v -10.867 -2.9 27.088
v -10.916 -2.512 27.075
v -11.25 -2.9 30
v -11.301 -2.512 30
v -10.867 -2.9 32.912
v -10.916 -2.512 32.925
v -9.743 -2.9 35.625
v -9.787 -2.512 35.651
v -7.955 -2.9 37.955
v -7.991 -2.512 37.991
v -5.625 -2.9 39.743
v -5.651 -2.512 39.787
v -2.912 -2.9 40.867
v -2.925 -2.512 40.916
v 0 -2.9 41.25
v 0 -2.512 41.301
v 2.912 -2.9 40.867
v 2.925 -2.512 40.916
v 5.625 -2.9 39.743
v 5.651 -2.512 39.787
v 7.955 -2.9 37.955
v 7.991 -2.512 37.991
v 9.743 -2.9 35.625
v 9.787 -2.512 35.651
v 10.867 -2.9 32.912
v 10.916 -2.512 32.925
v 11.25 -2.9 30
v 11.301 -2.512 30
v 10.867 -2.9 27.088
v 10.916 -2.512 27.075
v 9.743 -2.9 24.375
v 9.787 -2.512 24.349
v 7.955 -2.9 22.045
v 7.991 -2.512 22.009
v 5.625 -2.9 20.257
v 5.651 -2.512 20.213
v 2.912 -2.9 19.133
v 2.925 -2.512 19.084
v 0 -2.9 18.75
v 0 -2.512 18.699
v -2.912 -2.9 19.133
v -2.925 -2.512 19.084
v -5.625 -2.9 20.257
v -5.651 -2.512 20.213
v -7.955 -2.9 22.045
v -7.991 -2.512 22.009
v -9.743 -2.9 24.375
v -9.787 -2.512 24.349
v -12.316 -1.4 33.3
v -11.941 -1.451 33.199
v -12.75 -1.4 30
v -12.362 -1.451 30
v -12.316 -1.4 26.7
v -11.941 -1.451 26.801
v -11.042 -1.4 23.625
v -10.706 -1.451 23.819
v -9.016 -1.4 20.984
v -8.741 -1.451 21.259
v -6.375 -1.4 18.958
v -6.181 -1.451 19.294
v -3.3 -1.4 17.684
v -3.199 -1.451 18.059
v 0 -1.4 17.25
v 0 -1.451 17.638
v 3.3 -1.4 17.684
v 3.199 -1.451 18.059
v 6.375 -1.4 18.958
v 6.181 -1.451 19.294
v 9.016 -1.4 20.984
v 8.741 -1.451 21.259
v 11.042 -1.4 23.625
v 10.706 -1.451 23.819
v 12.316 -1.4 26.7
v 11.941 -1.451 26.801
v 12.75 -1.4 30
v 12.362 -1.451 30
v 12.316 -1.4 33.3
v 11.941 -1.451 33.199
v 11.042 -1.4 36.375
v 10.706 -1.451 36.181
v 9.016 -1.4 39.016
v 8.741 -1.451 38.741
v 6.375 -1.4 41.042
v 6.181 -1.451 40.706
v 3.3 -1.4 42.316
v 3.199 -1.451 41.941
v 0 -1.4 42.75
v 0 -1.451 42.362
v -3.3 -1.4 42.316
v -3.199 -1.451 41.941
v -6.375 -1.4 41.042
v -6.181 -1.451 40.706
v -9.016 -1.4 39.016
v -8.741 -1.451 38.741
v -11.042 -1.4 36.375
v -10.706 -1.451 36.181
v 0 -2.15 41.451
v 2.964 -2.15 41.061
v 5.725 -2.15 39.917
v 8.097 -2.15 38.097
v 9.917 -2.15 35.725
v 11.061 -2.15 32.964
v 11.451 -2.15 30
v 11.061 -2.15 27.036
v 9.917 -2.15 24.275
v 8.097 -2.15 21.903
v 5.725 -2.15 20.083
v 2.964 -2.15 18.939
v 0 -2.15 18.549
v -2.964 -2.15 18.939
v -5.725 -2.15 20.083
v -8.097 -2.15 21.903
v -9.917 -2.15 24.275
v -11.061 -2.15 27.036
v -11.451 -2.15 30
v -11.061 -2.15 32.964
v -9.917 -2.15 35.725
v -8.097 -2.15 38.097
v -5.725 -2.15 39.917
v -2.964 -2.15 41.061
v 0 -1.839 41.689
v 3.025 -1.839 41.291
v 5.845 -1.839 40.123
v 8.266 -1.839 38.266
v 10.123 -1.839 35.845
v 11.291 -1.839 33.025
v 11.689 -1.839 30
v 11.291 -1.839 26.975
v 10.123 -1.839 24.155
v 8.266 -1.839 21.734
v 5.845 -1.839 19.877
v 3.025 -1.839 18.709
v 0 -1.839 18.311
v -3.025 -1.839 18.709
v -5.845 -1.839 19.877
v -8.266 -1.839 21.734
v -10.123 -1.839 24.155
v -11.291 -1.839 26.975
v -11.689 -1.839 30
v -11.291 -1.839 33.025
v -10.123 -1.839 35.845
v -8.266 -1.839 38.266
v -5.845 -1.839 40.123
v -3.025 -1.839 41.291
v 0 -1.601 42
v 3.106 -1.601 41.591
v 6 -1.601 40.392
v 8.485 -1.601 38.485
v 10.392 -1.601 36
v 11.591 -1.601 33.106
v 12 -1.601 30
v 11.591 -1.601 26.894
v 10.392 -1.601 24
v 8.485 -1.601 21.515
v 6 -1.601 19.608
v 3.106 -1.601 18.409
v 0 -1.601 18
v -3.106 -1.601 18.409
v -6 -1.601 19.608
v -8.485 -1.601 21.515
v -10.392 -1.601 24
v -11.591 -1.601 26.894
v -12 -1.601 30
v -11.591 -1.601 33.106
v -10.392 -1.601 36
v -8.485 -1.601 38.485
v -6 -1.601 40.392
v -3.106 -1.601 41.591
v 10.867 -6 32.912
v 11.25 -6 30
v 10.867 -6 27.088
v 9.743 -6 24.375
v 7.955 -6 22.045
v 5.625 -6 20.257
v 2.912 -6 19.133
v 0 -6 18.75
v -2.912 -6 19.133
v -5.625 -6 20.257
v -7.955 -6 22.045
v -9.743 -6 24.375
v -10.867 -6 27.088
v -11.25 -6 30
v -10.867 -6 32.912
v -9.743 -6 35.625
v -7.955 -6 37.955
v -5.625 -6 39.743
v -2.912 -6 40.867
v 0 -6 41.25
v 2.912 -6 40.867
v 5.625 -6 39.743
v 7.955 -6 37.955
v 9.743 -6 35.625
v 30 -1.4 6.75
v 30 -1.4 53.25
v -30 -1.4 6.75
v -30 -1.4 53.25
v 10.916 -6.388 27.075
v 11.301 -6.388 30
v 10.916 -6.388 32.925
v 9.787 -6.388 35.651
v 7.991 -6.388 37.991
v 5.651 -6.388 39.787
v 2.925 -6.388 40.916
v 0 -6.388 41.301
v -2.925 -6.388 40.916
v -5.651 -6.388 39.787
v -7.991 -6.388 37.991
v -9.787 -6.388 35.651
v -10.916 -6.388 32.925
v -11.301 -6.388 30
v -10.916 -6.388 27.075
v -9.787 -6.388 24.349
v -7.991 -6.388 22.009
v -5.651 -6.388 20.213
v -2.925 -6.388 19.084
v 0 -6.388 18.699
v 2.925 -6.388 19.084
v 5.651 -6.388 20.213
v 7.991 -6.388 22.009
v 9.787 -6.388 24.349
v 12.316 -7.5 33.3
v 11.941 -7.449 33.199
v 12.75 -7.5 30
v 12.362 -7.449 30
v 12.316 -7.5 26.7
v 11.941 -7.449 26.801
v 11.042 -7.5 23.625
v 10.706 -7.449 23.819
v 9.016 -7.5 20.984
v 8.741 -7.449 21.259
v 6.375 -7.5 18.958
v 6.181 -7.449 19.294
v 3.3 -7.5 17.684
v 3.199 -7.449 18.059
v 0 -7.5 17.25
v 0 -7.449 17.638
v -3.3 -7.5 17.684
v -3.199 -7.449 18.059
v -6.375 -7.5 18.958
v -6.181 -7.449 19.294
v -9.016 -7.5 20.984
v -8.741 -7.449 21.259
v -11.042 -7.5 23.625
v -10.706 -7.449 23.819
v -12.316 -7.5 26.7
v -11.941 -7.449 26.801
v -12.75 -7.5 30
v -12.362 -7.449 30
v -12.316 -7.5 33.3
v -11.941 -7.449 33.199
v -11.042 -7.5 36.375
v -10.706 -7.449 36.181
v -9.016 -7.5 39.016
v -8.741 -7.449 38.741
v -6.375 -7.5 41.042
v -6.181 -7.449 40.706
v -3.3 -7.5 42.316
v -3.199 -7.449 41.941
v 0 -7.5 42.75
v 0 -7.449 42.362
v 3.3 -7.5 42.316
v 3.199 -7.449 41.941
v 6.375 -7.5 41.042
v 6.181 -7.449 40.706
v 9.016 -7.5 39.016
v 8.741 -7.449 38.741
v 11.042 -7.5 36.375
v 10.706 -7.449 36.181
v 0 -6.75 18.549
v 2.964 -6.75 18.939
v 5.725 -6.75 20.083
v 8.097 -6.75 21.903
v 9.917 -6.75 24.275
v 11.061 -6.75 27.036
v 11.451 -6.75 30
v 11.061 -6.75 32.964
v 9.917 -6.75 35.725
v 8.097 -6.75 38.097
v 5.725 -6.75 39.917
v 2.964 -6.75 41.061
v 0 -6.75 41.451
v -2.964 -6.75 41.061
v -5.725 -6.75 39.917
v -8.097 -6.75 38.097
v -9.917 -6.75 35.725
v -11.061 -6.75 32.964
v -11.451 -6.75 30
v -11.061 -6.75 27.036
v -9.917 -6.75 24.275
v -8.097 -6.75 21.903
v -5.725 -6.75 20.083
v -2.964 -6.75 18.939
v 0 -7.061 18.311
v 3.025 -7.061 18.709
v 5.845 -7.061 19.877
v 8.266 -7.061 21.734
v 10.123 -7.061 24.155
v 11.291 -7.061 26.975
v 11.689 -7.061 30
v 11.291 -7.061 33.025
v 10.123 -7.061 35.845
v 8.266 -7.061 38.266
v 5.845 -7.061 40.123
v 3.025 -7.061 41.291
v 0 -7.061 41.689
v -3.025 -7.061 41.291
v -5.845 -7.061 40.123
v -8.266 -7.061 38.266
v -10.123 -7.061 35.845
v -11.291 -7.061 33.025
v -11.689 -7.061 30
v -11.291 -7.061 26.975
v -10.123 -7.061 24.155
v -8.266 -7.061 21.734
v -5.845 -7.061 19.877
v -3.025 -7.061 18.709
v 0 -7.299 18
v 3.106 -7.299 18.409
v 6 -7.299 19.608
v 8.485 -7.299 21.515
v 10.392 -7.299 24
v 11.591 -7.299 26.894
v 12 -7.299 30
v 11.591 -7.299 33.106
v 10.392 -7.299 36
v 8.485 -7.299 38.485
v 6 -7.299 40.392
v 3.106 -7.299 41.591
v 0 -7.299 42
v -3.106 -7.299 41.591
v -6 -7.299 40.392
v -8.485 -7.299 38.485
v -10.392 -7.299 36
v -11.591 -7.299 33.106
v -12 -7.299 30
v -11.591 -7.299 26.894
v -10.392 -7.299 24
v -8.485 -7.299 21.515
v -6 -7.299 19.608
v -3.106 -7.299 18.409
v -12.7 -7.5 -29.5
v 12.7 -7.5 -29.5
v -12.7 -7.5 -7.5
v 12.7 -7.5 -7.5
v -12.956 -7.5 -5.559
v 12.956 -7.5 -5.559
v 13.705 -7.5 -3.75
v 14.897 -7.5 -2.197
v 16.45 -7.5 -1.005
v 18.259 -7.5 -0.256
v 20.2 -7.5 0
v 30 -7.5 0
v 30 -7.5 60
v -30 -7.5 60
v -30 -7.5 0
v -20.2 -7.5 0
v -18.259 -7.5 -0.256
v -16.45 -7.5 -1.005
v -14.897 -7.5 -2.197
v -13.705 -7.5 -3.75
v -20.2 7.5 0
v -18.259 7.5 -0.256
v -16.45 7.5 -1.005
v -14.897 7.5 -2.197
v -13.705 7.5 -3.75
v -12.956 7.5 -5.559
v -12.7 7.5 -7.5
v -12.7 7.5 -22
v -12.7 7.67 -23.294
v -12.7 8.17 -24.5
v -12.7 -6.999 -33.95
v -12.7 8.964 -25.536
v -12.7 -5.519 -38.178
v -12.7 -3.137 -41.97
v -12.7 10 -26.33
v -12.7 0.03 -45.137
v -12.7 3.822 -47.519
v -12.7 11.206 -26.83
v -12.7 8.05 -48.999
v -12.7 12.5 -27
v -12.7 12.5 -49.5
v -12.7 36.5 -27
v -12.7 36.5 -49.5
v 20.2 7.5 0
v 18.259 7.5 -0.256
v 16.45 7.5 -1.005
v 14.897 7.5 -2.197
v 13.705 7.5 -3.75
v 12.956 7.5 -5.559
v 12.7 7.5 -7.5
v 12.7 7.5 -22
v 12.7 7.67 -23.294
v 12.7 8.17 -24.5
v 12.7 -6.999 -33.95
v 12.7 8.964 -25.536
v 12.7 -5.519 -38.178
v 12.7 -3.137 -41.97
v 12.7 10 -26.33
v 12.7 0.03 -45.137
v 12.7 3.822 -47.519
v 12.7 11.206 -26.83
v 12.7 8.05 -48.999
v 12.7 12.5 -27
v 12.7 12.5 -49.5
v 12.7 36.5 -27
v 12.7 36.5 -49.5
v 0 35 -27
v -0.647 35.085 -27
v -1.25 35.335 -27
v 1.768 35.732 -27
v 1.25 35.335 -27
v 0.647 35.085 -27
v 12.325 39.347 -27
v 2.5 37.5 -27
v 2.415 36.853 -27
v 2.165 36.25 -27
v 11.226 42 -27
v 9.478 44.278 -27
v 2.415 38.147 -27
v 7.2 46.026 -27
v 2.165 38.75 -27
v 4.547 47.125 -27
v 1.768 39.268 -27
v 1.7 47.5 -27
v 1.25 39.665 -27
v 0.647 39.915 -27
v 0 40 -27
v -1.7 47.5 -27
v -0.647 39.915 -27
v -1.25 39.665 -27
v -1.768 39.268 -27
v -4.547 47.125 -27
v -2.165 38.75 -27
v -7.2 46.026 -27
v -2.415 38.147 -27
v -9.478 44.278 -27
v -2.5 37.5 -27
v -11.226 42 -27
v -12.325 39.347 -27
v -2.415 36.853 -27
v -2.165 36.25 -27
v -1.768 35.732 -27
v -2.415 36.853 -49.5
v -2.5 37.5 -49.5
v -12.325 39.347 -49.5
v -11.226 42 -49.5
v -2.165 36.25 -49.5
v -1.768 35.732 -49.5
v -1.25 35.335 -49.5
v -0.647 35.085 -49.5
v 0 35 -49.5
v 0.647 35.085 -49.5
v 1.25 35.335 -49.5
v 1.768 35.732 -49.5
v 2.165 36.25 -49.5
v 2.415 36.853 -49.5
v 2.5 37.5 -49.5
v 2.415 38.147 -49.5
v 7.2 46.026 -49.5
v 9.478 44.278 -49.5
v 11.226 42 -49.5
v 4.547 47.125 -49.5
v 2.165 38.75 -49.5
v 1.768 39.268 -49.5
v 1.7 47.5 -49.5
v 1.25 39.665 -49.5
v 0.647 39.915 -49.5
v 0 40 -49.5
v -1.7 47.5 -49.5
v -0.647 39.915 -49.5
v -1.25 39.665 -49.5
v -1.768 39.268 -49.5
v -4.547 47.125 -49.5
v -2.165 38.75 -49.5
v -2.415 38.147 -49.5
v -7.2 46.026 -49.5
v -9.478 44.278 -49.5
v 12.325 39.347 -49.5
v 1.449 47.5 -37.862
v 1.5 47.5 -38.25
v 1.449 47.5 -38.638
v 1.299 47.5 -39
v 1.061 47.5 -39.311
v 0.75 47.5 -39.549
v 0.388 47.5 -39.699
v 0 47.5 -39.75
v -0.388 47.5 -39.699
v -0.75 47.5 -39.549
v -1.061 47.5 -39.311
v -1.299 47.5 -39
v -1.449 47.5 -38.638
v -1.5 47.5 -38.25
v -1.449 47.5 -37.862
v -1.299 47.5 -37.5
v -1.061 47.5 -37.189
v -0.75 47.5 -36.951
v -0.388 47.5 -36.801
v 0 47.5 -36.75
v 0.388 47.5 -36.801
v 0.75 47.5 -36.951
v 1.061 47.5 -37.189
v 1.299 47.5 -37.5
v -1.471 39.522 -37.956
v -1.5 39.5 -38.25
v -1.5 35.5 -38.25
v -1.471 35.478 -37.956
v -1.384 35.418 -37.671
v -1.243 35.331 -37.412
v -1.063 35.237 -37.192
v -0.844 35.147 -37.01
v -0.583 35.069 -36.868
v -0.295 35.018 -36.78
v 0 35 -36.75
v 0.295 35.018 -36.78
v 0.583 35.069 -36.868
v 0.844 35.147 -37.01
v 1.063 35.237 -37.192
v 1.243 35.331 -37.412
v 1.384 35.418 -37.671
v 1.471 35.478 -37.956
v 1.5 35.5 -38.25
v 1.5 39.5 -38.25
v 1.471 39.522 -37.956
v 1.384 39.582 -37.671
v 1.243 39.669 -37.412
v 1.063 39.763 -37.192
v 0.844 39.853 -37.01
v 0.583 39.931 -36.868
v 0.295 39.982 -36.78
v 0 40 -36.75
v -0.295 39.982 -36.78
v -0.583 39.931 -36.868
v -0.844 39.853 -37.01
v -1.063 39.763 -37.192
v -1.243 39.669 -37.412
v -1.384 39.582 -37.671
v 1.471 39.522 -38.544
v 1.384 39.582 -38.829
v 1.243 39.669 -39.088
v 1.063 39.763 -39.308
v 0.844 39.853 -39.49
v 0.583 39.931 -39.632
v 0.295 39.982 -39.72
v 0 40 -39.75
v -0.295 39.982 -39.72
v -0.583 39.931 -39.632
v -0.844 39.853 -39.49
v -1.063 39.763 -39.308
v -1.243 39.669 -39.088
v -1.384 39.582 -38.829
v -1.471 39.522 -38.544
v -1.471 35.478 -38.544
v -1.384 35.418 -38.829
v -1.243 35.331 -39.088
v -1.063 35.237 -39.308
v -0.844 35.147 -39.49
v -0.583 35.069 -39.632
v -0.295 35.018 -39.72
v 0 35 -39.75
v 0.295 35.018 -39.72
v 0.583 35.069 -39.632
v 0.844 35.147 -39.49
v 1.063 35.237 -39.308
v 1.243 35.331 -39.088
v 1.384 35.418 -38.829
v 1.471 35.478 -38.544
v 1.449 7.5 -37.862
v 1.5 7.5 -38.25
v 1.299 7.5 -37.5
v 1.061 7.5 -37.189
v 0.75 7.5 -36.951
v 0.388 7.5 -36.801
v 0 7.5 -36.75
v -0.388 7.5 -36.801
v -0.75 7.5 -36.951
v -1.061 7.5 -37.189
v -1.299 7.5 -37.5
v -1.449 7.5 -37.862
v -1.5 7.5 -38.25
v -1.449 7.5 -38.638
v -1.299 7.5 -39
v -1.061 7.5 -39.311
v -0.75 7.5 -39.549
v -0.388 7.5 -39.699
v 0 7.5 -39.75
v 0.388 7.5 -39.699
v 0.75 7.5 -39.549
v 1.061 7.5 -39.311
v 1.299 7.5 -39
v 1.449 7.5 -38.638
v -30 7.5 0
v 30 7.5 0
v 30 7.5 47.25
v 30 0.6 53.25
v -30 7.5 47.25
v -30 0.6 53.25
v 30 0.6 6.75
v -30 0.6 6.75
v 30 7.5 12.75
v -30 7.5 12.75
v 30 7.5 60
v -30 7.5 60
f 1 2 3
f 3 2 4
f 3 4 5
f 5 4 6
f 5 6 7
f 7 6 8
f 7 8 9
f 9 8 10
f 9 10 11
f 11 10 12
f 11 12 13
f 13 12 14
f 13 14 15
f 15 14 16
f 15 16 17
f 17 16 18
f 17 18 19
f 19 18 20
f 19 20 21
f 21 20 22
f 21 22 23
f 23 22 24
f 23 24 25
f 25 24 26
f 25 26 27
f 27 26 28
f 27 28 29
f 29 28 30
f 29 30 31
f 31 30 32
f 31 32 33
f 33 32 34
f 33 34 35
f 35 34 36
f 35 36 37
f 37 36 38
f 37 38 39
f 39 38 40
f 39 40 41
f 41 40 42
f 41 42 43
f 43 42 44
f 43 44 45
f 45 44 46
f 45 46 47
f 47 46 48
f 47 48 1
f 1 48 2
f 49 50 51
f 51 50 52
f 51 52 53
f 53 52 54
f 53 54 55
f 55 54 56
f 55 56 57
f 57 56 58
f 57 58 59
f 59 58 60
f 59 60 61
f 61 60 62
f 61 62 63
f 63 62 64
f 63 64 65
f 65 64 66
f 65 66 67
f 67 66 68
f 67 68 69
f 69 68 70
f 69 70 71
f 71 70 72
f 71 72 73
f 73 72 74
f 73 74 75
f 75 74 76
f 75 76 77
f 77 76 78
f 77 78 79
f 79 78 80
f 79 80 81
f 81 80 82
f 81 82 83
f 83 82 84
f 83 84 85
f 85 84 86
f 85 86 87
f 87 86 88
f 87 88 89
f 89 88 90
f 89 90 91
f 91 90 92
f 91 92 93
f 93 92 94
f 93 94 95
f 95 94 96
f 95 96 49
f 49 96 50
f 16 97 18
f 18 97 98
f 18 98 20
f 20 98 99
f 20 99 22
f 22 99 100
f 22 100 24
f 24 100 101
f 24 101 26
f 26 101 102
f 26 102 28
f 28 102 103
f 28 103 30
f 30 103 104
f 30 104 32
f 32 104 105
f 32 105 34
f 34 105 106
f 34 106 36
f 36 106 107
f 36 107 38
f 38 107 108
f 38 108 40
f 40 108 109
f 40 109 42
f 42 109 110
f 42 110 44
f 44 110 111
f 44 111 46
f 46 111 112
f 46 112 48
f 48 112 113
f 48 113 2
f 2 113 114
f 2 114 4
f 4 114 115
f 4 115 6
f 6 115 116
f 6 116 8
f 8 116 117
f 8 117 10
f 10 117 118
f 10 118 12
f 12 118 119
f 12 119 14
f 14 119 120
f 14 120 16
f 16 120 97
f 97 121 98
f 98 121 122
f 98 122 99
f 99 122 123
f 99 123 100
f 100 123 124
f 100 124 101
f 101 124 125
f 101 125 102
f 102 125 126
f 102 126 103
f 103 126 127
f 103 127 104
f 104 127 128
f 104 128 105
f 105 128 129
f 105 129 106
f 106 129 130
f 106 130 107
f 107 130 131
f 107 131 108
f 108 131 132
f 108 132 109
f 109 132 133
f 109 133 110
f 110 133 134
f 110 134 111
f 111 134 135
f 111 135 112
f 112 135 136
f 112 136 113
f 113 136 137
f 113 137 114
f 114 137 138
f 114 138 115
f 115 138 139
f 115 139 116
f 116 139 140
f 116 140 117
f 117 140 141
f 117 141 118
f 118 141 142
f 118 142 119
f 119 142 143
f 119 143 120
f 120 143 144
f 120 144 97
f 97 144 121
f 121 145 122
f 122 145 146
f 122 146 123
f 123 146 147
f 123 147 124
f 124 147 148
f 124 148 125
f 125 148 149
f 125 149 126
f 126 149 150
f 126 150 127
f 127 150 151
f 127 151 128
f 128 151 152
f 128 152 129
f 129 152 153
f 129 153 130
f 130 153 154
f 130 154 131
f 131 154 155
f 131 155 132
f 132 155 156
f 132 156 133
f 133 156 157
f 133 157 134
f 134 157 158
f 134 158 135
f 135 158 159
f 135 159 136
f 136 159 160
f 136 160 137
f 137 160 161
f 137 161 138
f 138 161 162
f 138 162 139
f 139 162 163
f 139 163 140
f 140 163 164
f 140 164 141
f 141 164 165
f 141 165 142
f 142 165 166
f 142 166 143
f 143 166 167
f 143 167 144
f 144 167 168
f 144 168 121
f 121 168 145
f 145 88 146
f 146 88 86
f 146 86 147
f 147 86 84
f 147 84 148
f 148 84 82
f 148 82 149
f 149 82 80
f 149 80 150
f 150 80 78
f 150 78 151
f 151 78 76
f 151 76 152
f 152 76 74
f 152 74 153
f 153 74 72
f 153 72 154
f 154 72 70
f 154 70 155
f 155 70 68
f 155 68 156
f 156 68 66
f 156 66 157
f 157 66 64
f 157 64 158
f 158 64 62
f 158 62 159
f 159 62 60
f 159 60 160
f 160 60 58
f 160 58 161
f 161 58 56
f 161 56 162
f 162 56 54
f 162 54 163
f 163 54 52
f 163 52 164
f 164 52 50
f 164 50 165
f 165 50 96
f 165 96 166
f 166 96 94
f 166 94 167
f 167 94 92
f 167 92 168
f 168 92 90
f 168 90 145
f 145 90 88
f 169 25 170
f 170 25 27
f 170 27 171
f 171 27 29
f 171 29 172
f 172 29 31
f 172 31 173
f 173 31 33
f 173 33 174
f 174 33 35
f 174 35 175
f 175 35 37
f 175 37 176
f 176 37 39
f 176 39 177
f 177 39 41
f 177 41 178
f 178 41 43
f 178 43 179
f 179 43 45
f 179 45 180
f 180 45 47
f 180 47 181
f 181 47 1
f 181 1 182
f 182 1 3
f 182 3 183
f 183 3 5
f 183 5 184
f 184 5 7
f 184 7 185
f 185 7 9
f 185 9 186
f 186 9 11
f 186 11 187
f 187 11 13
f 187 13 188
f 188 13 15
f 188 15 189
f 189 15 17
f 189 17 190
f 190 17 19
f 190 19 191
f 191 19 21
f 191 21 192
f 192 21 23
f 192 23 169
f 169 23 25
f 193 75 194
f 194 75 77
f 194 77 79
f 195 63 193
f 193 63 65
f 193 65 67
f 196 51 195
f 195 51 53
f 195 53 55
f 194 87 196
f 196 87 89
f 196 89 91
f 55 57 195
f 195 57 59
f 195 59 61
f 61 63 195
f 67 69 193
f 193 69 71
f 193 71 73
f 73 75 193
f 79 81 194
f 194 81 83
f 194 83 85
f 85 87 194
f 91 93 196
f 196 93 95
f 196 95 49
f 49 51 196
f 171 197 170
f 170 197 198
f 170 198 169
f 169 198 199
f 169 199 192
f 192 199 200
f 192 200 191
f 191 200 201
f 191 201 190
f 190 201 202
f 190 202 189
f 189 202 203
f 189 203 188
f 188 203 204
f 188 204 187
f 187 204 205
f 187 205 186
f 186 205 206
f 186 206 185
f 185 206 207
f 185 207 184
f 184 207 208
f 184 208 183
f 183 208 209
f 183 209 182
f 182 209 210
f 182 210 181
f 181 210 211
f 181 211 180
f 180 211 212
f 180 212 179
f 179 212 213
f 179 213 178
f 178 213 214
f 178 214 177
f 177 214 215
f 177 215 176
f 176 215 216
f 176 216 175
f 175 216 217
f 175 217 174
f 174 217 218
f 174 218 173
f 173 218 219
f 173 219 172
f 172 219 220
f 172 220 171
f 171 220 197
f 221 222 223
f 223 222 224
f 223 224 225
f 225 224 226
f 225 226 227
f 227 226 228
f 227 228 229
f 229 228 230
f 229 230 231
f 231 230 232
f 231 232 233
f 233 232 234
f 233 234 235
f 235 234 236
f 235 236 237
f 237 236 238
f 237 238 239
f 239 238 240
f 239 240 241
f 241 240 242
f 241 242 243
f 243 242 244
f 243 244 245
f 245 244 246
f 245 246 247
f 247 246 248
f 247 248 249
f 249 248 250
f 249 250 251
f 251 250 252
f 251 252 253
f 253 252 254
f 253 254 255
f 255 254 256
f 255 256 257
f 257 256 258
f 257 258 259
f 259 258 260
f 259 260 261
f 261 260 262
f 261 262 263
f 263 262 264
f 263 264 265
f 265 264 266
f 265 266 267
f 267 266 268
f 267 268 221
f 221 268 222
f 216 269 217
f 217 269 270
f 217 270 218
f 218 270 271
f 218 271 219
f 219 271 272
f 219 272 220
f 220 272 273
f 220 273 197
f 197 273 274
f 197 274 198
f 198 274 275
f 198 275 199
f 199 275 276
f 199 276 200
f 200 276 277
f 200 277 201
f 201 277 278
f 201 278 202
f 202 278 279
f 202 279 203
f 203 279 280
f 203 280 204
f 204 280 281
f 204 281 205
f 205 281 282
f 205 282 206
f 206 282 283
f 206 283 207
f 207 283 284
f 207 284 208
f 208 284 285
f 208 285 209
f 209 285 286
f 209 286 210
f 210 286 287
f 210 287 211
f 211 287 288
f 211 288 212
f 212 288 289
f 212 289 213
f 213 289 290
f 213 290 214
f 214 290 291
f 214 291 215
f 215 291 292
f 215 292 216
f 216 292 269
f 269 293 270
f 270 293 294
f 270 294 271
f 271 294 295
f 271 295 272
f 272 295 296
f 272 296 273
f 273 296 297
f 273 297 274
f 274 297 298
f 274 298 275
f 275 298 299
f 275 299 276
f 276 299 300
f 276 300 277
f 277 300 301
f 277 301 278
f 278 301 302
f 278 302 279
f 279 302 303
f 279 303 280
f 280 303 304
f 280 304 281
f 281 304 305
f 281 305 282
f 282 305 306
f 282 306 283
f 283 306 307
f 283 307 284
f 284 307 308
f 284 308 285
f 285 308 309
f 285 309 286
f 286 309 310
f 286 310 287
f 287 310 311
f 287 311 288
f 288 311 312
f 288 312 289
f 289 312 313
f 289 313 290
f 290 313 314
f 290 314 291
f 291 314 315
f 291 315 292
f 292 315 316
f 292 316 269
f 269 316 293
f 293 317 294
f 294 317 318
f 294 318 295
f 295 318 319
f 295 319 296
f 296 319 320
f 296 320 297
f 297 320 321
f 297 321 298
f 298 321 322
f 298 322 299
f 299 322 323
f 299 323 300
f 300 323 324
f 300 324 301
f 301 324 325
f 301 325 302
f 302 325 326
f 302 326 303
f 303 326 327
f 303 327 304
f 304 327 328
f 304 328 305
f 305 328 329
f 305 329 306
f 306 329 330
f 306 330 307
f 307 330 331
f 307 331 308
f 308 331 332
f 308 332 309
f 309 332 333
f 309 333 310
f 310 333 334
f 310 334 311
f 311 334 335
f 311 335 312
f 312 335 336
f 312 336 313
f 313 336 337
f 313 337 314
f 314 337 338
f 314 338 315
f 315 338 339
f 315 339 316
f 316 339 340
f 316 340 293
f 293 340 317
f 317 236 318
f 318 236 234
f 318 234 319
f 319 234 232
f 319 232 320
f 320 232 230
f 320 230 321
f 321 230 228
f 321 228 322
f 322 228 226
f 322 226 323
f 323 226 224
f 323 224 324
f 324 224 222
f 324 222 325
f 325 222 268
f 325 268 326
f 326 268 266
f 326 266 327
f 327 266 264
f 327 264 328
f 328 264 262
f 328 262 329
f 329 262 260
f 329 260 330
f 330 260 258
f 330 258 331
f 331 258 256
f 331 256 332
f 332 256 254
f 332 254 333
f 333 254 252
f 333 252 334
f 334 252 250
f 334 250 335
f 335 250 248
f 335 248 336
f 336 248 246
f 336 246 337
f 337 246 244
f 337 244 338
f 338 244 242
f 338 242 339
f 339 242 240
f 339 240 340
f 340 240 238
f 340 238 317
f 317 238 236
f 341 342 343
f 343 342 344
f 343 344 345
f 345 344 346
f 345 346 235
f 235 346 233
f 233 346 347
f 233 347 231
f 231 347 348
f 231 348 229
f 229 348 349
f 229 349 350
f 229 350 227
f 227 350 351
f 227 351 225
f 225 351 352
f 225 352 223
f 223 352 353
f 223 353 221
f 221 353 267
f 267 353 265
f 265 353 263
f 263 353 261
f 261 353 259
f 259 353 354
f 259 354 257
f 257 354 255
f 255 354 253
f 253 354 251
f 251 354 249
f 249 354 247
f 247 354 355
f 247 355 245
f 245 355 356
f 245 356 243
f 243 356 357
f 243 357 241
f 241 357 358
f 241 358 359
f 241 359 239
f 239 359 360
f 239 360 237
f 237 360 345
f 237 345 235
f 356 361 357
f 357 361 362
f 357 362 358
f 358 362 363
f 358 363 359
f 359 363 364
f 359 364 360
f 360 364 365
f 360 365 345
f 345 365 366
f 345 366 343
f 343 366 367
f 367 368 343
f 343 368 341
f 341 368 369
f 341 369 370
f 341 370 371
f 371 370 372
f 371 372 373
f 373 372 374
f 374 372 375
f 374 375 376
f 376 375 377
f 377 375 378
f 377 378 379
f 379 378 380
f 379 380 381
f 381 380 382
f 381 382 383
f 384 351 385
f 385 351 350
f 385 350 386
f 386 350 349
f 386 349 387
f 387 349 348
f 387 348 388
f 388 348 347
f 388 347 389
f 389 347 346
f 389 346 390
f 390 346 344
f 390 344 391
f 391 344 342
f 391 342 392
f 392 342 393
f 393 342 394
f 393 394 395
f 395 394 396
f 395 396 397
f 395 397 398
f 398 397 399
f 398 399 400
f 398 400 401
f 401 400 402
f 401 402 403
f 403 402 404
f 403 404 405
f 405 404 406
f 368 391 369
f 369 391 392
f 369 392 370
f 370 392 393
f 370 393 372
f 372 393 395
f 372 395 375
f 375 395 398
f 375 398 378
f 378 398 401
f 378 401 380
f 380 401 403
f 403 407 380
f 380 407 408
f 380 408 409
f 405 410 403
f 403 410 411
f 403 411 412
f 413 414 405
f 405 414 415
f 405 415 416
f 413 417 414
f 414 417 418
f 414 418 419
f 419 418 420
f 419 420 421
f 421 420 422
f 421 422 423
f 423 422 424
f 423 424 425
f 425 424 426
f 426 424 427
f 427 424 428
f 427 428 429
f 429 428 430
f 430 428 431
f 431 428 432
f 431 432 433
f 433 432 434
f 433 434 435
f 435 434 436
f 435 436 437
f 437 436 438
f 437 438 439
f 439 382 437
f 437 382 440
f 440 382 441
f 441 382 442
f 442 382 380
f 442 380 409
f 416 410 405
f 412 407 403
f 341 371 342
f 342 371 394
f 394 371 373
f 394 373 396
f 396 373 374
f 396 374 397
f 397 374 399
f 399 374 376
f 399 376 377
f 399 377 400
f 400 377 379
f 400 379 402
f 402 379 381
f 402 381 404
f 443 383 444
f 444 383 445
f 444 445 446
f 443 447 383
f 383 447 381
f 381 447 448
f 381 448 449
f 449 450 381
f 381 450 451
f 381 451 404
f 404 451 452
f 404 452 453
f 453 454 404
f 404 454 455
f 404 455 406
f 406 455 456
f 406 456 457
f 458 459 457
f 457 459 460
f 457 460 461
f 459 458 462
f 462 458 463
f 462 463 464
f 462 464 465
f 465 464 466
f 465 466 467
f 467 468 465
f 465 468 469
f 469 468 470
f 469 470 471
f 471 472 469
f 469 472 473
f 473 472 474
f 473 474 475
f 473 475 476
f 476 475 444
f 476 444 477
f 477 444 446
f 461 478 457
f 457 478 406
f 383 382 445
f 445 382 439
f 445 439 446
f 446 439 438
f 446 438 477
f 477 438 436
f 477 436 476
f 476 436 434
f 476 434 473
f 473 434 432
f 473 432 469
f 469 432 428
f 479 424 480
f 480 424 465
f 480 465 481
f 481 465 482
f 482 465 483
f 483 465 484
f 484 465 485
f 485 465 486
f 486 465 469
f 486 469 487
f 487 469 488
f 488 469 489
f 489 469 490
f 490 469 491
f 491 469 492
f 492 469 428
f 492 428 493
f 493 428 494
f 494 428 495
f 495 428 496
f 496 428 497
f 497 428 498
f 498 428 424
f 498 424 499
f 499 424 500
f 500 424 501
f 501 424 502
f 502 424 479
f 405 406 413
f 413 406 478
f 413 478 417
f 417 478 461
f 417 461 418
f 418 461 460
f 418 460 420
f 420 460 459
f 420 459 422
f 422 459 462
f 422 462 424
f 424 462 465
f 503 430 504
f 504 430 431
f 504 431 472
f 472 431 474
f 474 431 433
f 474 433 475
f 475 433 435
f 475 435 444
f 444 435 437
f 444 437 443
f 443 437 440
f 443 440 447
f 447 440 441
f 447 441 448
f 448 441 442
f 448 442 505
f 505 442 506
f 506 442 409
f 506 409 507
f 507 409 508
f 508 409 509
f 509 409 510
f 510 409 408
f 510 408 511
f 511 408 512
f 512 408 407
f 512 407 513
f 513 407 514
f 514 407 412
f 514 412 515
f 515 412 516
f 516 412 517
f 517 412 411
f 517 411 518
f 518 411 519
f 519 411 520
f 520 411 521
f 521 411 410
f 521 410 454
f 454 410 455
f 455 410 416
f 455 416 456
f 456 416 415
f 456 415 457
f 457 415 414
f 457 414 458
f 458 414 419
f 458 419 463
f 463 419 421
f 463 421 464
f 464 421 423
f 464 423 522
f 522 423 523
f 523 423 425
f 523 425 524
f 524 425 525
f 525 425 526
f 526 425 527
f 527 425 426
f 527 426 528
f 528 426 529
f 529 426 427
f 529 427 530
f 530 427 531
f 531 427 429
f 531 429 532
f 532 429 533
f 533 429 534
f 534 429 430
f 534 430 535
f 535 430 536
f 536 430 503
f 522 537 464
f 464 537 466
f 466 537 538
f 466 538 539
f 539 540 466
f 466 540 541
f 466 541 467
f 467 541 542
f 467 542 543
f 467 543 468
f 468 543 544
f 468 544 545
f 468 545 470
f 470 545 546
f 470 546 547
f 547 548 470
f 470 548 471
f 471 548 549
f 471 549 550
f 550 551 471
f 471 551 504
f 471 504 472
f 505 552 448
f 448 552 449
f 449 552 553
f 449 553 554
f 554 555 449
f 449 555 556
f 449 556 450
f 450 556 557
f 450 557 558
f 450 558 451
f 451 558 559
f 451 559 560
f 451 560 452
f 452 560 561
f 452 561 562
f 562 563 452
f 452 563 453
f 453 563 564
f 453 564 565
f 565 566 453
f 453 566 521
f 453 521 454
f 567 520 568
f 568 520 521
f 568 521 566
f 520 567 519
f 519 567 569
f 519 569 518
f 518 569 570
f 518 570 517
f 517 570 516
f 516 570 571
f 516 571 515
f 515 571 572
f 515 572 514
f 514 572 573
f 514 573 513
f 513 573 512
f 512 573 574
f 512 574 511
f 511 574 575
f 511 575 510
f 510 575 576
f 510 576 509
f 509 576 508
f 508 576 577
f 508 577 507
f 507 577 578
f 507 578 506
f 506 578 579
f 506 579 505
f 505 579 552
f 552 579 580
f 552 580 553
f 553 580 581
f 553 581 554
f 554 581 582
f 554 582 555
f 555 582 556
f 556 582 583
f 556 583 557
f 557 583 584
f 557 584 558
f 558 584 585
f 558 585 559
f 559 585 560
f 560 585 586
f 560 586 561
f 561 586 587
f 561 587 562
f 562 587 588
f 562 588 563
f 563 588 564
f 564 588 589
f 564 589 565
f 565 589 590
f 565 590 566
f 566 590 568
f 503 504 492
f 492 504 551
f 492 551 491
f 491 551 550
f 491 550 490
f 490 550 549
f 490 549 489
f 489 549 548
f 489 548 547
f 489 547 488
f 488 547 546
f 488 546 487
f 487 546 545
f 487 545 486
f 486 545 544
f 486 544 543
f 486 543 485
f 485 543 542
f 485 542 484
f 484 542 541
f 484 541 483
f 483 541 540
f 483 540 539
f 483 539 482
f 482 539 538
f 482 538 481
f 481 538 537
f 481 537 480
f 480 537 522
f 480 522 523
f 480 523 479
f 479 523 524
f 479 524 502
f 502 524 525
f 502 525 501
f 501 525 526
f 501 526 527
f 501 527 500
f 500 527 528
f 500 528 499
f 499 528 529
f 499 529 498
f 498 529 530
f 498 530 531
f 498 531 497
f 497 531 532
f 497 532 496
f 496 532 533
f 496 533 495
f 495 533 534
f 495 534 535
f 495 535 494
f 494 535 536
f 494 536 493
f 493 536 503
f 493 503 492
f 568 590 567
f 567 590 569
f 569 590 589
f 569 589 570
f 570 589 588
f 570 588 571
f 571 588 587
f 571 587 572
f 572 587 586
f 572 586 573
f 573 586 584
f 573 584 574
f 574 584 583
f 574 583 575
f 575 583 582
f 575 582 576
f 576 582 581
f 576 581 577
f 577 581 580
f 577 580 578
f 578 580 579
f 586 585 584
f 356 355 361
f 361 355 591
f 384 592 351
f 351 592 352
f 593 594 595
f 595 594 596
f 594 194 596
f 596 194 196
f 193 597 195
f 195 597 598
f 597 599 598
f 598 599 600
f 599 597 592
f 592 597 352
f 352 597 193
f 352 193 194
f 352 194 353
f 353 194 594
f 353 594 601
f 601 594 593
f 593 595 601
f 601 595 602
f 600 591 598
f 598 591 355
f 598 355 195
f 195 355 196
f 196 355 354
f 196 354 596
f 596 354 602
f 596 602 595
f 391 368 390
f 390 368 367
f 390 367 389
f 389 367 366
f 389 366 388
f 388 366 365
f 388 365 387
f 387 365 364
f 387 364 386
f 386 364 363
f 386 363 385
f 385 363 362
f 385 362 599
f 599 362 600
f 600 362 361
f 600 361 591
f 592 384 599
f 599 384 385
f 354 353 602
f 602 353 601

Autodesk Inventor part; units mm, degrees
ref_plane "YZ Plane" through (0, 0, 0) normal (1, 0, 0) x (0, 1, 0)
ref_plane "XZ Plane" through (0, 0, 0) normal (0, 1, 0) x (-1, 0, 0)
ref_plane "XY Plane" through (0, 0, 0) normal (0, 0, 1) x (1, 0, 0)
sketch "Sketch1" plane through (0, 0, 0) normal (0, 0, 1) x (1, 0, 0)
  line L0 (-30, -7.5) -> (30, -7.5)
  line L1 (30, -7.5) -> (30, 7.5)
  line L2 (30, 7.5) -> (-30, 7.5)
  line L3 (-30, 7.5) -> (-30, -7.5)
  line L4 (-30, -7.5) -> (30, 7.5) construction
  line L5 (30, -7.5) -> (-30, 7.5) construction
  line L6 (30, 7.5) -> (25, 7.5) construction
  line L7 (-30, 7.5) -> (-25, 7.5) construction
  point P0 (0, 0)
  dimension "d0" = 60
  dimension "d1" = 15
extrude "Block" add sketch "Sketch1" along normal blind 60
sketch "Sketch2" plane through (30, -7.5, 0) normal (1, 0, 0) x (0, 0, -1)
  line L0 (0, 15) -> (-60, 15) projected
  line L1 (-30, 15) -> (-12.75, 15)
  line L2 (-30, 15) -> (-47.25, 15)
  line L3 (-30, 15) -> (-30, 6.1) construction
  line L4 (-30, 6.1) -> (-6.75, 6.1)
  line L5 (-30, 6.1) -> (-53.25, 6.1)
  line L6 (-53.25, 6.1) -> (-53.25, 8.1)
  line L7 (-6.75, 6.1) -> (-6.75, 8.1)
  line L8 (-6.75, 8.1) -> (-12.75, 15)
  line L9 (-53.25, 8.1) -> (-47.25, 15)
  point P0 (0, 7.5)
  dimension "d17" = 17.25
  dimension "d18" = 17.25
  dimension "d19" = 8.9
  dimension "d20" = 23.25
  dimension "d21" = 23.25
  dimension "d22" = 2
  dimension "d23" = 2
extrude "Tripod Slot" cut sketch "Sketch2" against normal blind 60
hole "Hole1" at (0, -1.4, 30) direction (0, -1, 0) diameter 22.5 end through all
sketch "Sketch4" plane through (0, 0, 0) normal (0, 0, -1) x (-1, 0, 0)
  line L0 (-30, 7.5) -> (30, 7.5) projected
  line L1 (12.7, 7.5) -> (-12.7, 7.5)
  line L2 (-12.7, 7.5) -> (-12.7, -7.5)
  line L3 (30, -7.5) -> (-30, -7.5) projected
  line L4 (-12.7, -7.5) -> (12.7, -7.5)
  line L5 (12.7, -7.5) -> (12.7, 7.5)
  point P0 (0, 1.5)
  dimension "d64" = 25.4
  dimension "d96" = 17.3
  dimension "d97" = 9
  dimension "d98" = 12.7
extrude "Extrusion4" add sketch "Sketch4" along normal blind 49.5
sketch "Sketch5" plane through (-30, 7.5, 12.75) normal (0, 1, 0) x (1, 0, 0)
  line L0 (60, -34.5) -> (60, 0) projected
  line L1 (17.3, 62.25) -> (42.7, 62.25) projected
  line L2 (17.3, 62.25) -> (42.7, 62.25)
  line L3 (42.7, 62.25) -> (42.7, 39.75)
  line L4 (42.7, 39.75) -> (17.3, 39.75)
  line L5 (17.3, 39.75) -> (17.3, 62.25)
  line L6 (42.7, 39.75) -> (17.3, 62.25) construction
  circle A0 centre (30, 51) radius 1.5
  point P0 (30, 12.75)
  dimension "d67" = 22.5
  dimension "d68" = 3
  dimension "d99" = 131.535
extrude "Extrusion5" add sketch "Sketch5" along normal blind 40
sketch "Sketch6" plane through (0, 0, -49.5) normal (0, 0, -1) x (-1, 0, 0)
  line L0 (0, 0) -> (0, 47.5) construction
  circle A0 centre (0, 37.5) radius 2.5
  line L1 (-12.7, 47.5) -> (12.7, 47.5) construction
  line L2 (-12.7, 47.5) -> (12.7, 47.5) construction
  line L3 (12.7, 47.5) -> (0, 47.5) construction
  line L4 (0, 37.5) -> (0, 47.5) construction
  dimension "d60" = 5
  dimension "d61" = 10
extrude "Extrusion6" cut sketch "Sketch6" against normal blind 31.75
fillet "Fillet4" radius 11 2 edges at (12.7, 47.5, -38.25) (-12.7, 47.5, -38.25)
fillet "Fillet5" radius 20 1 edges at (0, -7.5, -49.5)
fillet "Fillet6" radius 5 1 edges at (0, 7.5, -27)
fillet "Fillet10" radius 7.5 2 edges at (12.7, 0, 0) (-12.7, 0, 0)
fillet "Fillet11" radius 1.5 2 edges at (0, -7.5, 18.75) (0, -1.4, 18.75)
properties part number "InnerFrame"
